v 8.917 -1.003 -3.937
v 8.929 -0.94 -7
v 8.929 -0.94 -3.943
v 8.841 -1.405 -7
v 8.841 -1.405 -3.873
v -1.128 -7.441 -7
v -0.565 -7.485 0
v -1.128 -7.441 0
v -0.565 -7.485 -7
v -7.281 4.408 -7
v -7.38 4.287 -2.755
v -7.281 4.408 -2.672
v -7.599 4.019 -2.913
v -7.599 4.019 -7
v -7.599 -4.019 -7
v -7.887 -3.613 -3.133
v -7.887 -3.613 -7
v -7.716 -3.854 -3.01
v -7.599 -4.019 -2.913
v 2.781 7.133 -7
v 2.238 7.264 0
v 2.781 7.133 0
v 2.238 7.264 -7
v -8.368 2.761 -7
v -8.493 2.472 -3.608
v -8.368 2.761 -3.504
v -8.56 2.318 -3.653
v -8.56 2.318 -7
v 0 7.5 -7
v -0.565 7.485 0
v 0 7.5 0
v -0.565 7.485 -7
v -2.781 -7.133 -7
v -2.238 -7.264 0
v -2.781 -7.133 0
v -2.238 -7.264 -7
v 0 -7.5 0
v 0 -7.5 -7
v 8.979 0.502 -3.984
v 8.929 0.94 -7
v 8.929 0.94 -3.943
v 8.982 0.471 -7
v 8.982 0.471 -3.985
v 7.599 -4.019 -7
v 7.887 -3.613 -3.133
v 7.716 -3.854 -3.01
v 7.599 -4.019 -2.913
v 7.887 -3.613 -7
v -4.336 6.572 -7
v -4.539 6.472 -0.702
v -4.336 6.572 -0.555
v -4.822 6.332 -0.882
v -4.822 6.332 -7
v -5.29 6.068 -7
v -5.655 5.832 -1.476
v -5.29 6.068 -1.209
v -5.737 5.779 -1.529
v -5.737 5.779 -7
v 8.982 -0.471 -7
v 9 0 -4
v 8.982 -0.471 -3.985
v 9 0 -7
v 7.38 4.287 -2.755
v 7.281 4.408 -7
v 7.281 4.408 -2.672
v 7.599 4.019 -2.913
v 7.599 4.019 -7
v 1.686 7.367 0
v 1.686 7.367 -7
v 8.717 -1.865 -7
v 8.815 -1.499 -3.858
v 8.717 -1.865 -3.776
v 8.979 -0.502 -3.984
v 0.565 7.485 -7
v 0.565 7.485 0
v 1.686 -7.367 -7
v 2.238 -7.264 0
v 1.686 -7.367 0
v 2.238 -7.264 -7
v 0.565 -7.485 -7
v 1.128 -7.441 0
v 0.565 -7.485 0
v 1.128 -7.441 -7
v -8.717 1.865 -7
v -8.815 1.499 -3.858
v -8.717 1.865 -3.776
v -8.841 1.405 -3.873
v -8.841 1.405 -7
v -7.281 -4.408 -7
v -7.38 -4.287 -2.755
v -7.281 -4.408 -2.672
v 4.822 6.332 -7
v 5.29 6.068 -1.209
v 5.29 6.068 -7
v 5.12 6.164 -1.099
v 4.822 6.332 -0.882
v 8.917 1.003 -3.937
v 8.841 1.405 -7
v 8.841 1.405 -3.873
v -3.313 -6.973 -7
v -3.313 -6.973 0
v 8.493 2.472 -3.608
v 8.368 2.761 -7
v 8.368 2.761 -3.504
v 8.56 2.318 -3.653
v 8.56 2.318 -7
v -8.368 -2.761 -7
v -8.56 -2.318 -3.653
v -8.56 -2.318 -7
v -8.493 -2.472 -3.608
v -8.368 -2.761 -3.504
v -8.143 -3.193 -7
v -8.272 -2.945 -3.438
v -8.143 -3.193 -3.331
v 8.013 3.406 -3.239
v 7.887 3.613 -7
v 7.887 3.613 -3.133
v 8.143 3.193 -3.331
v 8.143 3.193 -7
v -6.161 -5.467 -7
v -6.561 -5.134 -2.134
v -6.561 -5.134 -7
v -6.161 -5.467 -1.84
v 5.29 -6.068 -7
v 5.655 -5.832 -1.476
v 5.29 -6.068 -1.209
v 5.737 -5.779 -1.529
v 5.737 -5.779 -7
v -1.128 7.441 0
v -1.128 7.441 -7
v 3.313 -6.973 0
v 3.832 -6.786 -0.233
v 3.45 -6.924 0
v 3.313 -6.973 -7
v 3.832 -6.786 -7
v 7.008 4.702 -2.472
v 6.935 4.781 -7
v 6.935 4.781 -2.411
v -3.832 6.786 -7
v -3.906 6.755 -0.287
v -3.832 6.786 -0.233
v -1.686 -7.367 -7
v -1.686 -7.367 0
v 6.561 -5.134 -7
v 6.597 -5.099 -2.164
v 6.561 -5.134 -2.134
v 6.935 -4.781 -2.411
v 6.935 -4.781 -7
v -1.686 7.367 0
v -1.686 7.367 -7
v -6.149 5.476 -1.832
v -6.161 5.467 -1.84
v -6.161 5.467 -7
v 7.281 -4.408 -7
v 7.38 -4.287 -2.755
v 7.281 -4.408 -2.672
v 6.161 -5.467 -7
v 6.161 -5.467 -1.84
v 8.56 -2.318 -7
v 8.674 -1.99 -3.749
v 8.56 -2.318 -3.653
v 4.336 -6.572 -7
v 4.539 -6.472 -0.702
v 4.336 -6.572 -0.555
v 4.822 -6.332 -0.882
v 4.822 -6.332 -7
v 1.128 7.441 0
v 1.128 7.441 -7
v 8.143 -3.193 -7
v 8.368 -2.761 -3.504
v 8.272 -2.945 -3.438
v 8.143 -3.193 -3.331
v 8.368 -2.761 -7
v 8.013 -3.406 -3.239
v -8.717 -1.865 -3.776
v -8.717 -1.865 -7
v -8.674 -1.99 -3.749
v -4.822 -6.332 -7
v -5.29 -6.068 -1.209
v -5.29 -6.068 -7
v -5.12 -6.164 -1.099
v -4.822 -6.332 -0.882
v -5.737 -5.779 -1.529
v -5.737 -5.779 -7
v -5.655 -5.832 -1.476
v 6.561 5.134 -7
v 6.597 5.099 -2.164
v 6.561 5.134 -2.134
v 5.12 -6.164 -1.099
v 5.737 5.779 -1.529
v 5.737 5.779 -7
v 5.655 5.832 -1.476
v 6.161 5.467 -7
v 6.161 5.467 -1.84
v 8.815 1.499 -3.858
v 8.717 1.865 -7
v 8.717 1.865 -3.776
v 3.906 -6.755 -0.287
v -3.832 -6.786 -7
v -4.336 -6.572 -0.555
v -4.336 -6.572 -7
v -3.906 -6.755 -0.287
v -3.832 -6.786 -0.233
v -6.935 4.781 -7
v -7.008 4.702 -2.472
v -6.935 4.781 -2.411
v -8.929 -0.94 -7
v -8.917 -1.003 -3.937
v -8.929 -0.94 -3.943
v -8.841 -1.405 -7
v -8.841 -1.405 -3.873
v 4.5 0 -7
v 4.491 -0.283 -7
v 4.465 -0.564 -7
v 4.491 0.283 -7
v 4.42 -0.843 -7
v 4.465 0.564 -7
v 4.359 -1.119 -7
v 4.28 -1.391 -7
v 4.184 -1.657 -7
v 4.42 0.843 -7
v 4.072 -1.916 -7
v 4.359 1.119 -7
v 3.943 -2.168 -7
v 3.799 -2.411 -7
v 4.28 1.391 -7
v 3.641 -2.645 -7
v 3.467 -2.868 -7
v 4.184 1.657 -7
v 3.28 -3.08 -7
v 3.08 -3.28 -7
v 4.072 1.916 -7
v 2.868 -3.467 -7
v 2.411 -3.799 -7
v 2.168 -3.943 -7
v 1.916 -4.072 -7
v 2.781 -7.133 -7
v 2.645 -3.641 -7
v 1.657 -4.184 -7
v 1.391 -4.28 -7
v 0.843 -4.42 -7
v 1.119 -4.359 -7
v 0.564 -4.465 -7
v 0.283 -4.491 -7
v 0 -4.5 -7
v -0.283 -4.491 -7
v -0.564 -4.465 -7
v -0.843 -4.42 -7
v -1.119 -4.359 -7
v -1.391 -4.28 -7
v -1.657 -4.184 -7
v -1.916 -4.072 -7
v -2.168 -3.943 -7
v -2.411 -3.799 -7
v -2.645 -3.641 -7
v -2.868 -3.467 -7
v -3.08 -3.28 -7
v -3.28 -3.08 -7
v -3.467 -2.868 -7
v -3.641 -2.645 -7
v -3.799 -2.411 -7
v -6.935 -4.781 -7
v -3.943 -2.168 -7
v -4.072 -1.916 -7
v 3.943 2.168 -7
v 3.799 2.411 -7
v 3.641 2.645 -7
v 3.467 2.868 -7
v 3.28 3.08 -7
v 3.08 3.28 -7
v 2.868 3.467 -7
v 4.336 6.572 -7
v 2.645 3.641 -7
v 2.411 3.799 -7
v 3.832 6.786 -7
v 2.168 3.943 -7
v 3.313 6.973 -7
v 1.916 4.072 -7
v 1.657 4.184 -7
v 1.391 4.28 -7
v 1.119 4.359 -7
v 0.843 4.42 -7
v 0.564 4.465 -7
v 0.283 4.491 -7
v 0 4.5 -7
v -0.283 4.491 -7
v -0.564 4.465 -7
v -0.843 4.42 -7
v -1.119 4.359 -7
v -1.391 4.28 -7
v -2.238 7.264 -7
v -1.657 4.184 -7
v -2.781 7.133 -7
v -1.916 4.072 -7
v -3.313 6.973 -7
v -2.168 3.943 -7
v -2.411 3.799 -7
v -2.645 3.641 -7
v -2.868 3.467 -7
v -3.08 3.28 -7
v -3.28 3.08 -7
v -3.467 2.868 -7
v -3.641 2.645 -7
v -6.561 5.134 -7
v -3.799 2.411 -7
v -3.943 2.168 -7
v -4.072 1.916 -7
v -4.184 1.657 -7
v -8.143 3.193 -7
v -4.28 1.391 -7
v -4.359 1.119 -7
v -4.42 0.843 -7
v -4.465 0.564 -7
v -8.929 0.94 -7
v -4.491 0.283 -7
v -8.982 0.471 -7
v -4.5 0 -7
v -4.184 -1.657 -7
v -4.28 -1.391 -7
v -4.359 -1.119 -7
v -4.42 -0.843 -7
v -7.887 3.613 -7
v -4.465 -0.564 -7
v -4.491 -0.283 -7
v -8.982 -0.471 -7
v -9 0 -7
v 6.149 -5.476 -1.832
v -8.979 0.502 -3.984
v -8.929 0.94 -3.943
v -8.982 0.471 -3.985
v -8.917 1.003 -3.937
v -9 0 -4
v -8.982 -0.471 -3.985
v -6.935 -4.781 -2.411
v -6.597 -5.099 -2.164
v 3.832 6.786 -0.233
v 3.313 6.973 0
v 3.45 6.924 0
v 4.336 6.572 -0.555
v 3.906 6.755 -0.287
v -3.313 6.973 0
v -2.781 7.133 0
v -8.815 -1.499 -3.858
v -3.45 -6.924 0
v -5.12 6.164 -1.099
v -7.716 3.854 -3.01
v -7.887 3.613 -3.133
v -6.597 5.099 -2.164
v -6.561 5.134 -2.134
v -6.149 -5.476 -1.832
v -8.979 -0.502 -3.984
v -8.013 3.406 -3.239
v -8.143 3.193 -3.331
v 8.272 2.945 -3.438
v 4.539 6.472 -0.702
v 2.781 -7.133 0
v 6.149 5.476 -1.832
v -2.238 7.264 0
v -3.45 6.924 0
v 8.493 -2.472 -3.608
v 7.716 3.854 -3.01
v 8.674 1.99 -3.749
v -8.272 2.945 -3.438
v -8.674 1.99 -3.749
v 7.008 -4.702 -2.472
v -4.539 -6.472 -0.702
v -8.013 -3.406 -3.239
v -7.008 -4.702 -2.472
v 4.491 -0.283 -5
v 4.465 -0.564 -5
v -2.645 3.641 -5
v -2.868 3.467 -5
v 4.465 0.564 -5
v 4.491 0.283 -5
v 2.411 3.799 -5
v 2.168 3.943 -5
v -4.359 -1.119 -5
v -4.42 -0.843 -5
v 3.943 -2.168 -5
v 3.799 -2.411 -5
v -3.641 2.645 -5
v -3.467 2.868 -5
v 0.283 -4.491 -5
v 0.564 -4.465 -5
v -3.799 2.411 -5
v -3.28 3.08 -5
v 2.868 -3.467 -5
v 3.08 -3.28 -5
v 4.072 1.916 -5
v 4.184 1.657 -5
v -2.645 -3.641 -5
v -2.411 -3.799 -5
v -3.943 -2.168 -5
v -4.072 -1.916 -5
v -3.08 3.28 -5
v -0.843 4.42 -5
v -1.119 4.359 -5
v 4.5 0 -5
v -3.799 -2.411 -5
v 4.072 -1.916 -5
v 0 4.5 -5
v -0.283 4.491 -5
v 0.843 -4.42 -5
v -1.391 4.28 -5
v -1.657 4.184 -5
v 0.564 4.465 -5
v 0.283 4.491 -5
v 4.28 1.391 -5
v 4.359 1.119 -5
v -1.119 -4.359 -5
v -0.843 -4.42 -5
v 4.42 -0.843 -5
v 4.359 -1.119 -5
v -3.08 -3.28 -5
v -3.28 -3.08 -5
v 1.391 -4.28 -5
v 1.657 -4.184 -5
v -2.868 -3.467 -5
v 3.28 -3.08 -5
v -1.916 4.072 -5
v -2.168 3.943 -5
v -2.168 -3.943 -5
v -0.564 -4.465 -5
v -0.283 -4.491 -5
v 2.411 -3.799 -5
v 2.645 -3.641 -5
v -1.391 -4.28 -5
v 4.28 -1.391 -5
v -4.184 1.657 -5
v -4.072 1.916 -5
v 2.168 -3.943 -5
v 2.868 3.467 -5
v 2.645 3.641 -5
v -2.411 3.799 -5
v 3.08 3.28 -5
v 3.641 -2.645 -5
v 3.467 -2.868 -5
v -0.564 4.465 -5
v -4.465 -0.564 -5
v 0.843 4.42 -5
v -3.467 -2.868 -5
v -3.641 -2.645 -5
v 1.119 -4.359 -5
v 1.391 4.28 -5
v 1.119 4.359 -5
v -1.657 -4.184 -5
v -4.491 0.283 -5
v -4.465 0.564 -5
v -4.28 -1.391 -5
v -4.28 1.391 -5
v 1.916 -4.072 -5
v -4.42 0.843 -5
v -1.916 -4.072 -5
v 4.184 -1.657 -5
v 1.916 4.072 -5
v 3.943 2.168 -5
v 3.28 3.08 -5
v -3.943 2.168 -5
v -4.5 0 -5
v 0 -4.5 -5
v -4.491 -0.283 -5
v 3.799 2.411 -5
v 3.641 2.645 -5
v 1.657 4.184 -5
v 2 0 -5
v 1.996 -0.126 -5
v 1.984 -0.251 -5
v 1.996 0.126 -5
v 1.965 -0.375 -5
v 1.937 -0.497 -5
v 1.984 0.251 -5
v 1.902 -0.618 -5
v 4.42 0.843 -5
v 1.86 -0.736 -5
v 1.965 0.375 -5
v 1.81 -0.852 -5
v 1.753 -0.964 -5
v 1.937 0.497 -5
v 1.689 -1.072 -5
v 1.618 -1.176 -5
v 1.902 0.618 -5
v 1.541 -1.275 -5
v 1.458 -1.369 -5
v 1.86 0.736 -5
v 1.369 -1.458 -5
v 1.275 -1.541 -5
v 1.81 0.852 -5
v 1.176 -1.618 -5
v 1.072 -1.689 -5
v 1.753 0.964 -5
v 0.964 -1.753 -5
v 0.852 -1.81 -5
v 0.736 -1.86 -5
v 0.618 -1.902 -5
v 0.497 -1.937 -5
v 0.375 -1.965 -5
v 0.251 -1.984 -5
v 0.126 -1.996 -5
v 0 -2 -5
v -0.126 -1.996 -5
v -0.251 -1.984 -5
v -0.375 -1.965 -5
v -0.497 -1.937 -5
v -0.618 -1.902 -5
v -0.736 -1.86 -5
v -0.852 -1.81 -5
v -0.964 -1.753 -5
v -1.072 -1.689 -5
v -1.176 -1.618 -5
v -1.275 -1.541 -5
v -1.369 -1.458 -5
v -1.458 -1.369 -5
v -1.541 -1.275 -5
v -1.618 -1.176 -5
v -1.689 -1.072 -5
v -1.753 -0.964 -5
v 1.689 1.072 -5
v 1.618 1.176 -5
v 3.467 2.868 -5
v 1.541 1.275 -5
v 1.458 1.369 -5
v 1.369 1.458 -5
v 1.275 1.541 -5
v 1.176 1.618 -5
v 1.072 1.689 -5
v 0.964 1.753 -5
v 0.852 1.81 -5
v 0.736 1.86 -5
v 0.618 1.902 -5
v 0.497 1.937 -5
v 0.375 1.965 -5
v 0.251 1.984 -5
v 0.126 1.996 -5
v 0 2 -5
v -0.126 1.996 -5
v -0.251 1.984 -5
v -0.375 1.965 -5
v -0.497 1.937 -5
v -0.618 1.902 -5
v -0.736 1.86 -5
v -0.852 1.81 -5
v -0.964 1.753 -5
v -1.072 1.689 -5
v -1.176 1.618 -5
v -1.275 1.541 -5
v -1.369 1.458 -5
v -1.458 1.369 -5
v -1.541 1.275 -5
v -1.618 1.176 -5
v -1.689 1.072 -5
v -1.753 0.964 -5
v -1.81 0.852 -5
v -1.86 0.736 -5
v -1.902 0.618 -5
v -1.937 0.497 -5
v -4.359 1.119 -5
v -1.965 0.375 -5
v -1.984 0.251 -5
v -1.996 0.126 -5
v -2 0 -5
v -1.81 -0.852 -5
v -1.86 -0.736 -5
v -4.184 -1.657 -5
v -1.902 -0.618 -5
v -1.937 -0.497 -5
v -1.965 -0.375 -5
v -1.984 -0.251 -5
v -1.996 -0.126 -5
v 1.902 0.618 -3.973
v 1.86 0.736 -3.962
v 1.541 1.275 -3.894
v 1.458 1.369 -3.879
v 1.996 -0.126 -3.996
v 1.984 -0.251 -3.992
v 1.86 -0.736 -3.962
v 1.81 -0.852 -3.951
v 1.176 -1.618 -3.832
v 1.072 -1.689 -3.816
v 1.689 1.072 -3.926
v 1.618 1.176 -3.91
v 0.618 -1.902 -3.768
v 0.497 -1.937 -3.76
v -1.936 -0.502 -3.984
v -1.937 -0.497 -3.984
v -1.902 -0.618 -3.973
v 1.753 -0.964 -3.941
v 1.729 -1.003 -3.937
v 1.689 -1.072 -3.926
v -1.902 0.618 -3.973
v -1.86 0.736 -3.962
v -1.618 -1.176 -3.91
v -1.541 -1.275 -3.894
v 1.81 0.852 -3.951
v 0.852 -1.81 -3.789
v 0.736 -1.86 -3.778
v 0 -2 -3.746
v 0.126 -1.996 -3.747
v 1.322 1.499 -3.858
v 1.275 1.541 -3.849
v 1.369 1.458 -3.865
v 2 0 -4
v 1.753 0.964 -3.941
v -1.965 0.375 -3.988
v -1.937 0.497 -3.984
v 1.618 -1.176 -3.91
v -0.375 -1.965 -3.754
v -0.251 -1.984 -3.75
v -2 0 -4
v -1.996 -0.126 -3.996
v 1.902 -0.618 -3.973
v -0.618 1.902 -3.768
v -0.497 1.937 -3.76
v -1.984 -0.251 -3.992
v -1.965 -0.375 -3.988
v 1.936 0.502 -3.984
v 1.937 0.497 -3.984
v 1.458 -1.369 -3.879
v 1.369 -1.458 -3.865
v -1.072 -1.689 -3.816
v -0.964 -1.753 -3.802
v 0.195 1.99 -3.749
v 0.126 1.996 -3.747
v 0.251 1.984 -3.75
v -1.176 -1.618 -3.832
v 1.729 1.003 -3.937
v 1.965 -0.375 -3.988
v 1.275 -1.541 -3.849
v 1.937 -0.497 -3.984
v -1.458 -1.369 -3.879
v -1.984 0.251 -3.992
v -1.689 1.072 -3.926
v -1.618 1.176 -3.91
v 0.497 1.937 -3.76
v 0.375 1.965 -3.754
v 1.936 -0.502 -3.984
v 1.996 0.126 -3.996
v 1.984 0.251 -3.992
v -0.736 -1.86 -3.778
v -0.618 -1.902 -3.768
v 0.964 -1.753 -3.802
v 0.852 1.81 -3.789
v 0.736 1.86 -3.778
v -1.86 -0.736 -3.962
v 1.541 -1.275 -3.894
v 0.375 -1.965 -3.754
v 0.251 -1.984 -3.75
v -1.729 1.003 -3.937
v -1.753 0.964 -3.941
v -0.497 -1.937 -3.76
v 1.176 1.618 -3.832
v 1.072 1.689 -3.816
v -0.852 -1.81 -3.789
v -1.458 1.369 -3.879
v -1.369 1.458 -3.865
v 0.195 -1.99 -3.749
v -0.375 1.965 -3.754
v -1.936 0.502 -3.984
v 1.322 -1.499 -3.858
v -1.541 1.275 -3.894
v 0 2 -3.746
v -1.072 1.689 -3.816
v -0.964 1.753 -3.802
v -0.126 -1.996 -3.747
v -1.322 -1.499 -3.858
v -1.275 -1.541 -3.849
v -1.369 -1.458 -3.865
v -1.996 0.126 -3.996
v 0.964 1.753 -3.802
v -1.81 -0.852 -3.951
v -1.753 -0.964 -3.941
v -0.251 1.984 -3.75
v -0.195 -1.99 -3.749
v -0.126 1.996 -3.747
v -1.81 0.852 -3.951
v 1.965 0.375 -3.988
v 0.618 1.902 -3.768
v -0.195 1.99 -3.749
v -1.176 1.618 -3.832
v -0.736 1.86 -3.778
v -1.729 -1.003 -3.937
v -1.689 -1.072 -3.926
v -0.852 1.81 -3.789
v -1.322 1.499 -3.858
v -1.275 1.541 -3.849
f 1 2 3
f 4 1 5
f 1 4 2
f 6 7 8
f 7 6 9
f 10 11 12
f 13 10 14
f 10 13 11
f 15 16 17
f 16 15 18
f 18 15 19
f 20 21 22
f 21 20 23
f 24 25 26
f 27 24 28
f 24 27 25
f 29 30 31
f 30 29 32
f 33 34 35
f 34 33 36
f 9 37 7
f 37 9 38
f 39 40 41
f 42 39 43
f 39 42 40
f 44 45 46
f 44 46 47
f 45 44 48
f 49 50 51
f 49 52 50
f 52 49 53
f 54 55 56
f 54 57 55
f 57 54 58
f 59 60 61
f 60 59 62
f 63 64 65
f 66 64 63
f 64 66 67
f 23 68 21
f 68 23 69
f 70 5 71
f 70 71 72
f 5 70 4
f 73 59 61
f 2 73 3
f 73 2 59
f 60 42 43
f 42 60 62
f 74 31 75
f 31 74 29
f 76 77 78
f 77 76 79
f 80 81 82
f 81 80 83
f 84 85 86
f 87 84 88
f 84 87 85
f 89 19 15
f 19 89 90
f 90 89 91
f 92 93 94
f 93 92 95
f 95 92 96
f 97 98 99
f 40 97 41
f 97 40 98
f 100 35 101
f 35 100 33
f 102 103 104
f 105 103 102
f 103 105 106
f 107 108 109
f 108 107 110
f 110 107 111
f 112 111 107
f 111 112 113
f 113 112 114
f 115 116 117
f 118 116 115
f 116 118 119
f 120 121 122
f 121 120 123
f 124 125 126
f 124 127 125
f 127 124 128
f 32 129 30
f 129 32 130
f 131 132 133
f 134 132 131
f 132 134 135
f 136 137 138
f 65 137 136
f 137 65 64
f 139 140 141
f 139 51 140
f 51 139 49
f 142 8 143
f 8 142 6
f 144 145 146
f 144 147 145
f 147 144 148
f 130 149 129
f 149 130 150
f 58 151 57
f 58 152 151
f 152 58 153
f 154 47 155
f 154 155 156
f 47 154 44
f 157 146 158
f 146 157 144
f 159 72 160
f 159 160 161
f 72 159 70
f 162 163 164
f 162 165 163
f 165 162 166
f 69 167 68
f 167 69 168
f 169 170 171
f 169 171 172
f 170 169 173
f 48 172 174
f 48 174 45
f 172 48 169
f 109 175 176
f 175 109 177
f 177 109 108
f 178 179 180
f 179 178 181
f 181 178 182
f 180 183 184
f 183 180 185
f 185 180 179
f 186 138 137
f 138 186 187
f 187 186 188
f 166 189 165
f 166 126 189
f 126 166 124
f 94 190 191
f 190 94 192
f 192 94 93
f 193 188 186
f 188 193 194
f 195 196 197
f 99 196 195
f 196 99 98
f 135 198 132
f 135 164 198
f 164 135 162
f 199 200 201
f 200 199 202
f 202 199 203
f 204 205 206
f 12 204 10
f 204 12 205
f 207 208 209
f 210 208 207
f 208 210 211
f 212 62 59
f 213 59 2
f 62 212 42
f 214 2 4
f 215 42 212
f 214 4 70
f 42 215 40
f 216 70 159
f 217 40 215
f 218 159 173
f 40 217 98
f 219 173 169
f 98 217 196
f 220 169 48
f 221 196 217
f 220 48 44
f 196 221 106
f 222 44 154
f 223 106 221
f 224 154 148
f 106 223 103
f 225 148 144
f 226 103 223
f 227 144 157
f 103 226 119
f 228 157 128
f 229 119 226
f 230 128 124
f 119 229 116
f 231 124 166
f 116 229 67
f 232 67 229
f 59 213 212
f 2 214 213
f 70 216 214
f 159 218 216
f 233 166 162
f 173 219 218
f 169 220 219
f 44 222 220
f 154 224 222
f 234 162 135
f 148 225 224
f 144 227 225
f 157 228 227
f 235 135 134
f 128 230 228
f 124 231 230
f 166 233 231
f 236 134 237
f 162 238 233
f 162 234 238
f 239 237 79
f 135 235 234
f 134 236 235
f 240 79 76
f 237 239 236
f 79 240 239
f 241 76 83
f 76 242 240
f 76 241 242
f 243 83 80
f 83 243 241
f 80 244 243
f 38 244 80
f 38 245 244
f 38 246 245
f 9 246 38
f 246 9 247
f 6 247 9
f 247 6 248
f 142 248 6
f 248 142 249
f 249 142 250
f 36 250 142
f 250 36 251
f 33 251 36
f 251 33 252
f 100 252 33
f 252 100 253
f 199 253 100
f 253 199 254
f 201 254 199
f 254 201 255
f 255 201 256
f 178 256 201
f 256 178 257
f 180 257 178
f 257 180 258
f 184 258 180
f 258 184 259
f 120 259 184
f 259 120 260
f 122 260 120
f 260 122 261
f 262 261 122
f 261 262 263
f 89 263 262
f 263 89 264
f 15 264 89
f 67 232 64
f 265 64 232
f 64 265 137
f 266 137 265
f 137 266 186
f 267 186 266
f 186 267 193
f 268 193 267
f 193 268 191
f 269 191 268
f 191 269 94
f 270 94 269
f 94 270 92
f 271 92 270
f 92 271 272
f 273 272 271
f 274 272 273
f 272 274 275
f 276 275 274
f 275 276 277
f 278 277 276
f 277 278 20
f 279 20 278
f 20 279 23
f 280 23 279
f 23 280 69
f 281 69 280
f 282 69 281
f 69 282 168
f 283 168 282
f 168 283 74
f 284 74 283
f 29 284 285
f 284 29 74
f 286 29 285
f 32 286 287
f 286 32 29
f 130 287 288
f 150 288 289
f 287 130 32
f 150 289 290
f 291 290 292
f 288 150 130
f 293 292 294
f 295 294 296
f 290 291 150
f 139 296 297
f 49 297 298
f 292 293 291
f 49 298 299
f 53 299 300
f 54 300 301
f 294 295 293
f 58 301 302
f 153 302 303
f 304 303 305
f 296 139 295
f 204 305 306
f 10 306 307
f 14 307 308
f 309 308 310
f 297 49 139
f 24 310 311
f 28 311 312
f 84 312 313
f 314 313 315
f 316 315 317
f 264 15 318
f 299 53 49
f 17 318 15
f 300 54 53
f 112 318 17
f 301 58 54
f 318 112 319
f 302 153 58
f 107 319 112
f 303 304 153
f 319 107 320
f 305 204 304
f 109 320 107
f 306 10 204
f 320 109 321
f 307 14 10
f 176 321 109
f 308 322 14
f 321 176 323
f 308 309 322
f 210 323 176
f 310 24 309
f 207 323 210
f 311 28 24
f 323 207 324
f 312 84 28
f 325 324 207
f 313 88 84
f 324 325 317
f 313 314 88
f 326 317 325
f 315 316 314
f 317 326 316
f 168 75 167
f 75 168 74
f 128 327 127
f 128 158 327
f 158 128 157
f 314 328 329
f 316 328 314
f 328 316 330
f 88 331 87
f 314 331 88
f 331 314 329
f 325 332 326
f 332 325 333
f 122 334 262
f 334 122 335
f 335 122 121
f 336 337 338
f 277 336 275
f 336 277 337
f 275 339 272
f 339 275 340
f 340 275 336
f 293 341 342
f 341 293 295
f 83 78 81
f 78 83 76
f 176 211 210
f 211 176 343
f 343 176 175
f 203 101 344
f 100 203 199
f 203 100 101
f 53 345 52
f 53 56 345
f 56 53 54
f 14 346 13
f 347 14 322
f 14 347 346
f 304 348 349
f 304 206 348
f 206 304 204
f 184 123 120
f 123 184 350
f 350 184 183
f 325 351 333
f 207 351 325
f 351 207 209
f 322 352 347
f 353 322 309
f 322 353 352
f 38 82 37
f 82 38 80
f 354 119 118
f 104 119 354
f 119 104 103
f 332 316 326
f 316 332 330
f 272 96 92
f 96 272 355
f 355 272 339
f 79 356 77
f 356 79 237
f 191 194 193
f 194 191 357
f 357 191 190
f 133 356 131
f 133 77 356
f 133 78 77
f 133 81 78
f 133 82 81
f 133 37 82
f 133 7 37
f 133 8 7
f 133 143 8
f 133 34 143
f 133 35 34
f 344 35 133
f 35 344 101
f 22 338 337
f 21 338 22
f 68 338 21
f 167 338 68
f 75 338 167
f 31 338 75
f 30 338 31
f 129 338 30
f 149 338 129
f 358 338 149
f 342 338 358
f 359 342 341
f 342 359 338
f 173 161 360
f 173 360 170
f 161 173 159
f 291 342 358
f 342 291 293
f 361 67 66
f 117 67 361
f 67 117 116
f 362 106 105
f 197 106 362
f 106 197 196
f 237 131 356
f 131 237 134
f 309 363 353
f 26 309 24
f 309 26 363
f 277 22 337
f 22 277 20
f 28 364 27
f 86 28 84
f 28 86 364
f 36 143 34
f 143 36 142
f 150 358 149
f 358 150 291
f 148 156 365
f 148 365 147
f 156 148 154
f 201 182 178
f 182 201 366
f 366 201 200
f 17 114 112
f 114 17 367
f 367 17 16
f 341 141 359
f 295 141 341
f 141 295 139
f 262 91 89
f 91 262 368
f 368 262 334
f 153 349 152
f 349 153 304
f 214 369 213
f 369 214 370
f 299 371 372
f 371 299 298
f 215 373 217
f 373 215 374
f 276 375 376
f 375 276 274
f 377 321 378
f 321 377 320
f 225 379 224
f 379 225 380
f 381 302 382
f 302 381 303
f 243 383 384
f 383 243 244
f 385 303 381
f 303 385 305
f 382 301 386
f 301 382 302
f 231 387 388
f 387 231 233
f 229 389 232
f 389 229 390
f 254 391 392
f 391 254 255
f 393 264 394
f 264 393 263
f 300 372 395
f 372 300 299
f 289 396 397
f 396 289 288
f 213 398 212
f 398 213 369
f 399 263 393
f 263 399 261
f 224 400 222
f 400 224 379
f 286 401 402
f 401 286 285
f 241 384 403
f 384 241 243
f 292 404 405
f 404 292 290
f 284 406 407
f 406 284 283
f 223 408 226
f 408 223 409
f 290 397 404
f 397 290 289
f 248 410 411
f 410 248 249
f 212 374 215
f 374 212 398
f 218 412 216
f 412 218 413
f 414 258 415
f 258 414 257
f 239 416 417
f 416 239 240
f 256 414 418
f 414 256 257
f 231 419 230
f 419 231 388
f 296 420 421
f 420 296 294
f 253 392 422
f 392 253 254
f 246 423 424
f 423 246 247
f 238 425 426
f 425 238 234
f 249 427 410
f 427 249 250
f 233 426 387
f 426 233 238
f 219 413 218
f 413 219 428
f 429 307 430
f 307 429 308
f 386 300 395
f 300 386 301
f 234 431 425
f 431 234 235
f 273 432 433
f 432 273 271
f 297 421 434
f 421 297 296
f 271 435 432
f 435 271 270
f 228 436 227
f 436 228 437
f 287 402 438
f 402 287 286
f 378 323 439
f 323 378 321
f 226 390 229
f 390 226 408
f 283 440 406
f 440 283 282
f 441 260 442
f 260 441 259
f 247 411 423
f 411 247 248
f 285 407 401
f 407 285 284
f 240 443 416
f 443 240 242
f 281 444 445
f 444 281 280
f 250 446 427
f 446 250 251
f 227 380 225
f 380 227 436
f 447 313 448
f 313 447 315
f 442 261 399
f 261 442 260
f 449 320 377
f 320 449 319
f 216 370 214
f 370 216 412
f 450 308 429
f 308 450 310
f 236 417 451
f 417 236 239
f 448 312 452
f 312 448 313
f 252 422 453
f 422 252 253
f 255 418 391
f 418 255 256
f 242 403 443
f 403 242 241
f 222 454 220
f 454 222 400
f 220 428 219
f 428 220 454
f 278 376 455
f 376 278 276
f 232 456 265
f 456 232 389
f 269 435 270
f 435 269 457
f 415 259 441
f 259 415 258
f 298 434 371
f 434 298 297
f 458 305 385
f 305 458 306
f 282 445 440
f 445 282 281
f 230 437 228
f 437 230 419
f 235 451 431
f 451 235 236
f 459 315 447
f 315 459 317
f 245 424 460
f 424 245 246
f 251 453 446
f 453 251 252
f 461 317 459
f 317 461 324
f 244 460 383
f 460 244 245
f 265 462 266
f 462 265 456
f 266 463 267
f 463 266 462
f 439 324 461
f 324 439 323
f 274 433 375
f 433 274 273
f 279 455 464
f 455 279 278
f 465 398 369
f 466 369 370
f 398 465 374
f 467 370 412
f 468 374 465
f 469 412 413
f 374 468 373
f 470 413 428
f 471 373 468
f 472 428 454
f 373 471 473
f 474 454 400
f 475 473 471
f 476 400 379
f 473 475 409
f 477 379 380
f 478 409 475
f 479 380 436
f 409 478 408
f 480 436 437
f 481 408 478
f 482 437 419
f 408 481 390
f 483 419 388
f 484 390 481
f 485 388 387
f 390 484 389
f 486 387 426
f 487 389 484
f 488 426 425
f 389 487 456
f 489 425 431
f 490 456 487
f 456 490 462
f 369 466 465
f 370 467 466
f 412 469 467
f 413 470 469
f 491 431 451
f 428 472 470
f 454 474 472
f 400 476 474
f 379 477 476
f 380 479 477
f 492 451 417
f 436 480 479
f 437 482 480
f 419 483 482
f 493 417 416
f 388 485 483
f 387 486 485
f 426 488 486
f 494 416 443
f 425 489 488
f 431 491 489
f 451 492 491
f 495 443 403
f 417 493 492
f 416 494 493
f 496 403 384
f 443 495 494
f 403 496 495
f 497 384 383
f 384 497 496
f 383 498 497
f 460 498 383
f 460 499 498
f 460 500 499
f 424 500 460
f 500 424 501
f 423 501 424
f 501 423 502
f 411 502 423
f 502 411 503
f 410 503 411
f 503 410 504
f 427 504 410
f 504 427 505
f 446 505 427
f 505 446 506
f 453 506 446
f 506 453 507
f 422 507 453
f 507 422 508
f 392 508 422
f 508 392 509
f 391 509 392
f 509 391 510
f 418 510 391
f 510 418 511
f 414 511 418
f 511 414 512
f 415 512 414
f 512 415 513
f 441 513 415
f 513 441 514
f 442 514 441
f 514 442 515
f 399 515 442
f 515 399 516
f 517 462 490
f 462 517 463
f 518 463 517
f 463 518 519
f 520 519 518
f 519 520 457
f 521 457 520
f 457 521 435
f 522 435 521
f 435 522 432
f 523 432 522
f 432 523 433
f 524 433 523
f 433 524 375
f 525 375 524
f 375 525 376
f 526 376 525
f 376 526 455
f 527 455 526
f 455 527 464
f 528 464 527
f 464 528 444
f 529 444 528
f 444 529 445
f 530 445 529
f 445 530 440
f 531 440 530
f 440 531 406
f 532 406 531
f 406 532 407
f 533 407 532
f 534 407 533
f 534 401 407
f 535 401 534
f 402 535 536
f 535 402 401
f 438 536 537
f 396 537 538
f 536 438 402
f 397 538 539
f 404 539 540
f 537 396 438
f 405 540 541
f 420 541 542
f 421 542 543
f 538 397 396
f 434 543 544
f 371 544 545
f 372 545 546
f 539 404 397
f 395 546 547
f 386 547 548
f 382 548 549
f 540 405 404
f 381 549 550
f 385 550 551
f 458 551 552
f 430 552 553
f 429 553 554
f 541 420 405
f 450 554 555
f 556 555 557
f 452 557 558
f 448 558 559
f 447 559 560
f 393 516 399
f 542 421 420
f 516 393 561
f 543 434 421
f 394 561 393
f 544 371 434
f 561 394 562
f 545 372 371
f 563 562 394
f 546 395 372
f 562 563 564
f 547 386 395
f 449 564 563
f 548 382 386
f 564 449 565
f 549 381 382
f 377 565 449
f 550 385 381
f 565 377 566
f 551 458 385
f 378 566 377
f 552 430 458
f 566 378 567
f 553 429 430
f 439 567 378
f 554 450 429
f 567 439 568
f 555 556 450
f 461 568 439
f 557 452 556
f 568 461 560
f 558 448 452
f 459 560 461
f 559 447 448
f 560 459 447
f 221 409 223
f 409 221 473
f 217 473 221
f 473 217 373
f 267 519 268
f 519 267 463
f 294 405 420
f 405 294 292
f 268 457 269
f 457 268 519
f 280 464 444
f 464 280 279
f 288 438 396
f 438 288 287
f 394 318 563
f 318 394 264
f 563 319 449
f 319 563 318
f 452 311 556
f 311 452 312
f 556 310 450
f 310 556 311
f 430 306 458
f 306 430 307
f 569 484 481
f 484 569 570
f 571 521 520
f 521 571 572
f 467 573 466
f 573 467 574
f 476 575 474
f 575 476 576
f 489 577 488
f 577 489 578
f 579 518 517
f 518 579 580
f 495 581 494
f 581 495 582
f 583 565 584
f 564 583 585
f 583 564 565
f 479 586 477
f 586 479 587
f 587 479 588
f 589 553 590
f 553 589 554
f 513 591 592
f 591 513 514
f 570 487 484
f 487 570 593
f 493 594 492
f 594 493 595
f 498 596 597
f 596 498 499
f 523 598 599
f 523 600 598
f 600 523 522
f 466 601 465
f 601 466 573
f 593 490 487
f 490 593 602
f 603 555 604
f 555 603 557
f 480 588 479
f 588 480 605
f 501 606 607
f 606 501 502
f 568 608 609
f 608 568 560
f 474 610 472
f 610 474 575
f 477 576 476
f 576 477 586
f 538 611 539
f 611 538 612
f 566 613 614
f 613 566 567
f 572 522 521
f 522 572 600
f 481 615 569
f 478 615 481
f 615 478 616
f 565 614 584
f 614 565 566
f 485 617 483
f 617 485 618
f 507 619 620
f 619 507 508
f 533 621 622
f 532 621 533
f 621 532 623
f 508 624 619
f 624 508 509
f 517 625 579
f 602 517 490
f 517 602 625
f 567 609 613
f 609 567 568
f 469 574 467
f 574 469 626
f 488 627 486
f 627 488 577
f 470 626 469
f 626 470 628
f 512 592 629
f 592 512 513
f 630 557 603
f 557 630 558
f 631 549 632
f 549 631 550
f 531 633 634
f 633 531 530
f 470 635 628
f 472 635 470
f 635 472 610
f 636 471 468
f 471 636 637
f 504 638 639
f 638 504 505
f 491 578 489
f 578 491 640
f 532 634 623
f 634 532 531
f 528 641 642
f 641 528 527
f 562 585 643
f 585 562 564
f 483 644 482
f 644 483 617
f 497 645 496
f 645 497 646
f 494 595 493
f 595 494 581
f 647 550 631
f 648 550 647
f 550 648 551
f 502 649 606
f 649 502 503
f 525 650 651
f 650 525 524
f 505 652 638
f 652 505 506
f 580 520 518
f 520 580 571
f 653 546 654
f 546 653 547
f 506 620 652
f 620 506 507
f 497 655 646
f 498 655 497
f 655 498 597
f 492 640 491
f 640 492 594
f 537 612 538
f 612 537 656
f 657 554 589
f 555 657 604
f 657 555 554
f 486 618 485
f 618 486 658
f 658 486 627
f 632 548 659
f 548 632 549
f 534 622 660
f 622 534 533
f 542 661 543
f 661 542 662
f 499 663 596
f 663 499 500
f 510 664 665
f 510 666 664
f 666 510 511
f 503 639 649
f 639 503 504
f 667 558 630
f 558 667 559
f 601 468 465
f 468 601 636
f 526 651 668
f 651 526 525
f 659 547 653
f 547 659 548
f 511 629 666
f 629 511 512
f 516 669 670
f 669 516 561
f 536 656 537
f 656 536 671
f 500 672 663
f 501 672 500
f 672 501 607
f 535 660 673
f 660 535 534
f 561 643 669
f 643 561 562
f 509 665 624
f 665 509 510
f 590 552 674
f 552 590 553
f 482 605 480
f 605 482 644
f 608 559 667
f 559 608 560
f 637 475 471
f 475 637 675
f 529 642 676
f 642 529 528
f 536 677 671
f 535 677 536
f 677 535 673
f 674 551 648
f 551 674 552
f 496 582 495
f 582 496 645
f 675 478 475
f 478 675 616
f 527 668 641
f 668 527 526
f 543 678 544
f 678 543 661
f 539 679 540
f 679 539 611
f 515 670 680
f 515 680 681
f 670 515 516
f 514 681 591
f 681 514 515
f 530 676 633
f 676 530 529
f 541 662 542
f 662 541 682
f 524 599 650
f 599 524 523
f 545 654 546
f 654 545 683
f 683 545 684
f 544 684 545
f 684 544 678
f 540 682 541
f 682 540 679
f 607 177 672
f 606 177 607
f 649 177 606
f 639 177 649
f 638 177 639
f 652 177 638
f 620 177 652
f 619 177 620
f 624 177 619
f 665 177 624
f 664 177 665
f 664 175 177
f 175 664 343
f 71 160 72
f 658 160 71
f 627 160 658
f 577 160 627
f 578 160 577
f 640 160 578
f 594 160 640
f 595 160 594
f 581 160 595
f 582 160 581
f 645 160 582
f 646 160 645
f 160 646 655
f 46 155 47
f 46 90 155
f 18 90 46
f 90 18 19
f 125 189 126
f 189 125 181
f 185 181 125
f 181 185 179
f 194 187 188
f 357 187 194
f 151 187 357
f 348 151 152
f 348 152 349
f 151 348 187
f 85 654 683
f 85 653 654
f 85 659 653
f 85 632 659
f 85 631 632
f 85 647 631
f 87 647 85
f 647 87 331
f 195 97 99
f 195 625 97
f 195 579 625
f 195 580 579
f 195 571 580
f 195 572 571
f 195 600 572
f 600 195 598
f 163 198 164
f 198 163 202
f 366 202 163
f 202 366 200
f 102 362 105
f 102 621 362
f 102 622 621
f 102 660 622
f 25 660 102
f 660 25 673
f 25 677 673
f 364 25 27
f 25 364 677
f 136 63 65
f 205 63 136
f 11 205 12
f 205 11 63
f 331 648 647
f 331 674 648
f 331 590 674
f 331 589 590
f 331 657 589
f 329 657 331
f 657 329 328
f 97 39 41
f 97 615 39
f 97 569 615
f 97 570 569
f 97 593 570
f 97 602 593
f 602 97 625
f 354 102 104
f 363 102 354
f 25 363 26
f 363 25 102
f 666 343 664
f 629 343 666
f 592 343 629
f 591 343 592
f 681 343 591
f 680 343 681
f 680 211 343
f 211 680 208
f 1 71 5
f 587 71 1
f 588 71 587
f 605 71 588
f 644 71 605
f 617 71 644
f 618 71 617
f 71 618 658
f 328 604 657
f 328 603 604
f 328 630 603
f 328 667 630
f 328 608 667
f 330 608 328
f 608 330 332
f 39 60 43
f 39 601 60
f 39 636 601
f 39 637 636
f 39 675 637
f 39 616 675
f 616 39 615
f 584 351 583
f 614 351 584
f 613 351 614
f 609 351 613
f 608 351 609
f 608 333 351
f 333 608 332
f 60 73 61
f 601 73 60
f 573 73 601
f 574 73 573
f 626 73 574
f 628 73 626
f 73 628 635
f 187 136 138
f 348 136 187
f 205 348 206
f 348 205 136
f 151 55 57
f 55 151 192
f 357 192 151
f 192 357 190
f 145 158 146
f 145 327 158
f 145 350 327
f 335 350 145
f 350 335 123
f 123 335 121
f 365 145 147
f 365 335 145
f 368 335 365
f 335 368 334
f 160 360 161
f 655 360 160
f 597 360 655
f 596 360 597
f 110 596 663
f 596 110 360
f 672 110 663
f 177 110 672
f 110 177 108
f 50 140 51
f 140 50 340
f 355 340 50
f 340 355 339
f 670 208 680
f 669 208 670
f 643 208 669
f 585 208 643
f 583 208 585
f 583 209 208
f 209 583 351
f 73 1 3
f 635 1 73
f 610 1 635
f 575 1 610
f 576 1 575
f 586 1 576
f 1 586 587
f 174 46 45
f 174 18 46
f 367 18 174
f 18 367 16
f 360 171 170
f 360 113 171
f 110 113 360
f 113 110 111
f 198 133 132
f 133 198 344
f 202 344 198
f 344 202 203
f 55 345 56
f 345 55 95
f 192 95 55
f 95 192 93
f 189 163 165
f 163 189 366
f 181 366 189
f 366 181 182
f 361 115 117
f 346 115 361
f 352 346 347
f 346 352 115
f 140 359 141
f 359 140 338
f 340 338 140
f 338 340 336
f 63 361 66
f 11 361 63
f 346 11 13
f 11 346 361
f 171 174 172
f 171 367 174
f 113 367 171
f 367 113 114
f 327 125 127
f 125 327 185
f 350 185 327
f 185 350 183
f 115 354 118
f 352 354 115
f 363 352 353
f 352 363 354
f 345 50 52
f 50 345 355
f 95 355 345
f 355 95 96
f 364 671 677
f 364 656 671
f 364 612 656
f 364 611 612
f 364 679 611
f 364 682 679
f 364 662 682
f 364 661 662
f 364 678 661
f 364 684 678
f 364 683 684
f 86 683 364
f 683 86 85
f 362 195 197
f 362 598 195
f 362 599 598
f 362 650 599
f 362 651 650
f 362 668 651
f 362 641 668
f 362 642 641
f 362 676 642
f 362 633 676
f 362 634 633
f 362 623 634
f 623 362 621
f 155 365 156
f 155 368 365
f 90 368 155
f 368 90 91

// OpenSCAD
$fn=100;

rotate([180, 0, 0]) {
    difference() {
        scale([1.2, 1, 1]) cylinder(7, d=15);
        translate([0, 0, 5]) cylinder(7, d=9);
        translate([0, 0, 3]) cylinder(7, d=4);
        translate([-15, 0, -4]) rotate([0, 90, 0]) cylinder(30, d=16);
    }
}
